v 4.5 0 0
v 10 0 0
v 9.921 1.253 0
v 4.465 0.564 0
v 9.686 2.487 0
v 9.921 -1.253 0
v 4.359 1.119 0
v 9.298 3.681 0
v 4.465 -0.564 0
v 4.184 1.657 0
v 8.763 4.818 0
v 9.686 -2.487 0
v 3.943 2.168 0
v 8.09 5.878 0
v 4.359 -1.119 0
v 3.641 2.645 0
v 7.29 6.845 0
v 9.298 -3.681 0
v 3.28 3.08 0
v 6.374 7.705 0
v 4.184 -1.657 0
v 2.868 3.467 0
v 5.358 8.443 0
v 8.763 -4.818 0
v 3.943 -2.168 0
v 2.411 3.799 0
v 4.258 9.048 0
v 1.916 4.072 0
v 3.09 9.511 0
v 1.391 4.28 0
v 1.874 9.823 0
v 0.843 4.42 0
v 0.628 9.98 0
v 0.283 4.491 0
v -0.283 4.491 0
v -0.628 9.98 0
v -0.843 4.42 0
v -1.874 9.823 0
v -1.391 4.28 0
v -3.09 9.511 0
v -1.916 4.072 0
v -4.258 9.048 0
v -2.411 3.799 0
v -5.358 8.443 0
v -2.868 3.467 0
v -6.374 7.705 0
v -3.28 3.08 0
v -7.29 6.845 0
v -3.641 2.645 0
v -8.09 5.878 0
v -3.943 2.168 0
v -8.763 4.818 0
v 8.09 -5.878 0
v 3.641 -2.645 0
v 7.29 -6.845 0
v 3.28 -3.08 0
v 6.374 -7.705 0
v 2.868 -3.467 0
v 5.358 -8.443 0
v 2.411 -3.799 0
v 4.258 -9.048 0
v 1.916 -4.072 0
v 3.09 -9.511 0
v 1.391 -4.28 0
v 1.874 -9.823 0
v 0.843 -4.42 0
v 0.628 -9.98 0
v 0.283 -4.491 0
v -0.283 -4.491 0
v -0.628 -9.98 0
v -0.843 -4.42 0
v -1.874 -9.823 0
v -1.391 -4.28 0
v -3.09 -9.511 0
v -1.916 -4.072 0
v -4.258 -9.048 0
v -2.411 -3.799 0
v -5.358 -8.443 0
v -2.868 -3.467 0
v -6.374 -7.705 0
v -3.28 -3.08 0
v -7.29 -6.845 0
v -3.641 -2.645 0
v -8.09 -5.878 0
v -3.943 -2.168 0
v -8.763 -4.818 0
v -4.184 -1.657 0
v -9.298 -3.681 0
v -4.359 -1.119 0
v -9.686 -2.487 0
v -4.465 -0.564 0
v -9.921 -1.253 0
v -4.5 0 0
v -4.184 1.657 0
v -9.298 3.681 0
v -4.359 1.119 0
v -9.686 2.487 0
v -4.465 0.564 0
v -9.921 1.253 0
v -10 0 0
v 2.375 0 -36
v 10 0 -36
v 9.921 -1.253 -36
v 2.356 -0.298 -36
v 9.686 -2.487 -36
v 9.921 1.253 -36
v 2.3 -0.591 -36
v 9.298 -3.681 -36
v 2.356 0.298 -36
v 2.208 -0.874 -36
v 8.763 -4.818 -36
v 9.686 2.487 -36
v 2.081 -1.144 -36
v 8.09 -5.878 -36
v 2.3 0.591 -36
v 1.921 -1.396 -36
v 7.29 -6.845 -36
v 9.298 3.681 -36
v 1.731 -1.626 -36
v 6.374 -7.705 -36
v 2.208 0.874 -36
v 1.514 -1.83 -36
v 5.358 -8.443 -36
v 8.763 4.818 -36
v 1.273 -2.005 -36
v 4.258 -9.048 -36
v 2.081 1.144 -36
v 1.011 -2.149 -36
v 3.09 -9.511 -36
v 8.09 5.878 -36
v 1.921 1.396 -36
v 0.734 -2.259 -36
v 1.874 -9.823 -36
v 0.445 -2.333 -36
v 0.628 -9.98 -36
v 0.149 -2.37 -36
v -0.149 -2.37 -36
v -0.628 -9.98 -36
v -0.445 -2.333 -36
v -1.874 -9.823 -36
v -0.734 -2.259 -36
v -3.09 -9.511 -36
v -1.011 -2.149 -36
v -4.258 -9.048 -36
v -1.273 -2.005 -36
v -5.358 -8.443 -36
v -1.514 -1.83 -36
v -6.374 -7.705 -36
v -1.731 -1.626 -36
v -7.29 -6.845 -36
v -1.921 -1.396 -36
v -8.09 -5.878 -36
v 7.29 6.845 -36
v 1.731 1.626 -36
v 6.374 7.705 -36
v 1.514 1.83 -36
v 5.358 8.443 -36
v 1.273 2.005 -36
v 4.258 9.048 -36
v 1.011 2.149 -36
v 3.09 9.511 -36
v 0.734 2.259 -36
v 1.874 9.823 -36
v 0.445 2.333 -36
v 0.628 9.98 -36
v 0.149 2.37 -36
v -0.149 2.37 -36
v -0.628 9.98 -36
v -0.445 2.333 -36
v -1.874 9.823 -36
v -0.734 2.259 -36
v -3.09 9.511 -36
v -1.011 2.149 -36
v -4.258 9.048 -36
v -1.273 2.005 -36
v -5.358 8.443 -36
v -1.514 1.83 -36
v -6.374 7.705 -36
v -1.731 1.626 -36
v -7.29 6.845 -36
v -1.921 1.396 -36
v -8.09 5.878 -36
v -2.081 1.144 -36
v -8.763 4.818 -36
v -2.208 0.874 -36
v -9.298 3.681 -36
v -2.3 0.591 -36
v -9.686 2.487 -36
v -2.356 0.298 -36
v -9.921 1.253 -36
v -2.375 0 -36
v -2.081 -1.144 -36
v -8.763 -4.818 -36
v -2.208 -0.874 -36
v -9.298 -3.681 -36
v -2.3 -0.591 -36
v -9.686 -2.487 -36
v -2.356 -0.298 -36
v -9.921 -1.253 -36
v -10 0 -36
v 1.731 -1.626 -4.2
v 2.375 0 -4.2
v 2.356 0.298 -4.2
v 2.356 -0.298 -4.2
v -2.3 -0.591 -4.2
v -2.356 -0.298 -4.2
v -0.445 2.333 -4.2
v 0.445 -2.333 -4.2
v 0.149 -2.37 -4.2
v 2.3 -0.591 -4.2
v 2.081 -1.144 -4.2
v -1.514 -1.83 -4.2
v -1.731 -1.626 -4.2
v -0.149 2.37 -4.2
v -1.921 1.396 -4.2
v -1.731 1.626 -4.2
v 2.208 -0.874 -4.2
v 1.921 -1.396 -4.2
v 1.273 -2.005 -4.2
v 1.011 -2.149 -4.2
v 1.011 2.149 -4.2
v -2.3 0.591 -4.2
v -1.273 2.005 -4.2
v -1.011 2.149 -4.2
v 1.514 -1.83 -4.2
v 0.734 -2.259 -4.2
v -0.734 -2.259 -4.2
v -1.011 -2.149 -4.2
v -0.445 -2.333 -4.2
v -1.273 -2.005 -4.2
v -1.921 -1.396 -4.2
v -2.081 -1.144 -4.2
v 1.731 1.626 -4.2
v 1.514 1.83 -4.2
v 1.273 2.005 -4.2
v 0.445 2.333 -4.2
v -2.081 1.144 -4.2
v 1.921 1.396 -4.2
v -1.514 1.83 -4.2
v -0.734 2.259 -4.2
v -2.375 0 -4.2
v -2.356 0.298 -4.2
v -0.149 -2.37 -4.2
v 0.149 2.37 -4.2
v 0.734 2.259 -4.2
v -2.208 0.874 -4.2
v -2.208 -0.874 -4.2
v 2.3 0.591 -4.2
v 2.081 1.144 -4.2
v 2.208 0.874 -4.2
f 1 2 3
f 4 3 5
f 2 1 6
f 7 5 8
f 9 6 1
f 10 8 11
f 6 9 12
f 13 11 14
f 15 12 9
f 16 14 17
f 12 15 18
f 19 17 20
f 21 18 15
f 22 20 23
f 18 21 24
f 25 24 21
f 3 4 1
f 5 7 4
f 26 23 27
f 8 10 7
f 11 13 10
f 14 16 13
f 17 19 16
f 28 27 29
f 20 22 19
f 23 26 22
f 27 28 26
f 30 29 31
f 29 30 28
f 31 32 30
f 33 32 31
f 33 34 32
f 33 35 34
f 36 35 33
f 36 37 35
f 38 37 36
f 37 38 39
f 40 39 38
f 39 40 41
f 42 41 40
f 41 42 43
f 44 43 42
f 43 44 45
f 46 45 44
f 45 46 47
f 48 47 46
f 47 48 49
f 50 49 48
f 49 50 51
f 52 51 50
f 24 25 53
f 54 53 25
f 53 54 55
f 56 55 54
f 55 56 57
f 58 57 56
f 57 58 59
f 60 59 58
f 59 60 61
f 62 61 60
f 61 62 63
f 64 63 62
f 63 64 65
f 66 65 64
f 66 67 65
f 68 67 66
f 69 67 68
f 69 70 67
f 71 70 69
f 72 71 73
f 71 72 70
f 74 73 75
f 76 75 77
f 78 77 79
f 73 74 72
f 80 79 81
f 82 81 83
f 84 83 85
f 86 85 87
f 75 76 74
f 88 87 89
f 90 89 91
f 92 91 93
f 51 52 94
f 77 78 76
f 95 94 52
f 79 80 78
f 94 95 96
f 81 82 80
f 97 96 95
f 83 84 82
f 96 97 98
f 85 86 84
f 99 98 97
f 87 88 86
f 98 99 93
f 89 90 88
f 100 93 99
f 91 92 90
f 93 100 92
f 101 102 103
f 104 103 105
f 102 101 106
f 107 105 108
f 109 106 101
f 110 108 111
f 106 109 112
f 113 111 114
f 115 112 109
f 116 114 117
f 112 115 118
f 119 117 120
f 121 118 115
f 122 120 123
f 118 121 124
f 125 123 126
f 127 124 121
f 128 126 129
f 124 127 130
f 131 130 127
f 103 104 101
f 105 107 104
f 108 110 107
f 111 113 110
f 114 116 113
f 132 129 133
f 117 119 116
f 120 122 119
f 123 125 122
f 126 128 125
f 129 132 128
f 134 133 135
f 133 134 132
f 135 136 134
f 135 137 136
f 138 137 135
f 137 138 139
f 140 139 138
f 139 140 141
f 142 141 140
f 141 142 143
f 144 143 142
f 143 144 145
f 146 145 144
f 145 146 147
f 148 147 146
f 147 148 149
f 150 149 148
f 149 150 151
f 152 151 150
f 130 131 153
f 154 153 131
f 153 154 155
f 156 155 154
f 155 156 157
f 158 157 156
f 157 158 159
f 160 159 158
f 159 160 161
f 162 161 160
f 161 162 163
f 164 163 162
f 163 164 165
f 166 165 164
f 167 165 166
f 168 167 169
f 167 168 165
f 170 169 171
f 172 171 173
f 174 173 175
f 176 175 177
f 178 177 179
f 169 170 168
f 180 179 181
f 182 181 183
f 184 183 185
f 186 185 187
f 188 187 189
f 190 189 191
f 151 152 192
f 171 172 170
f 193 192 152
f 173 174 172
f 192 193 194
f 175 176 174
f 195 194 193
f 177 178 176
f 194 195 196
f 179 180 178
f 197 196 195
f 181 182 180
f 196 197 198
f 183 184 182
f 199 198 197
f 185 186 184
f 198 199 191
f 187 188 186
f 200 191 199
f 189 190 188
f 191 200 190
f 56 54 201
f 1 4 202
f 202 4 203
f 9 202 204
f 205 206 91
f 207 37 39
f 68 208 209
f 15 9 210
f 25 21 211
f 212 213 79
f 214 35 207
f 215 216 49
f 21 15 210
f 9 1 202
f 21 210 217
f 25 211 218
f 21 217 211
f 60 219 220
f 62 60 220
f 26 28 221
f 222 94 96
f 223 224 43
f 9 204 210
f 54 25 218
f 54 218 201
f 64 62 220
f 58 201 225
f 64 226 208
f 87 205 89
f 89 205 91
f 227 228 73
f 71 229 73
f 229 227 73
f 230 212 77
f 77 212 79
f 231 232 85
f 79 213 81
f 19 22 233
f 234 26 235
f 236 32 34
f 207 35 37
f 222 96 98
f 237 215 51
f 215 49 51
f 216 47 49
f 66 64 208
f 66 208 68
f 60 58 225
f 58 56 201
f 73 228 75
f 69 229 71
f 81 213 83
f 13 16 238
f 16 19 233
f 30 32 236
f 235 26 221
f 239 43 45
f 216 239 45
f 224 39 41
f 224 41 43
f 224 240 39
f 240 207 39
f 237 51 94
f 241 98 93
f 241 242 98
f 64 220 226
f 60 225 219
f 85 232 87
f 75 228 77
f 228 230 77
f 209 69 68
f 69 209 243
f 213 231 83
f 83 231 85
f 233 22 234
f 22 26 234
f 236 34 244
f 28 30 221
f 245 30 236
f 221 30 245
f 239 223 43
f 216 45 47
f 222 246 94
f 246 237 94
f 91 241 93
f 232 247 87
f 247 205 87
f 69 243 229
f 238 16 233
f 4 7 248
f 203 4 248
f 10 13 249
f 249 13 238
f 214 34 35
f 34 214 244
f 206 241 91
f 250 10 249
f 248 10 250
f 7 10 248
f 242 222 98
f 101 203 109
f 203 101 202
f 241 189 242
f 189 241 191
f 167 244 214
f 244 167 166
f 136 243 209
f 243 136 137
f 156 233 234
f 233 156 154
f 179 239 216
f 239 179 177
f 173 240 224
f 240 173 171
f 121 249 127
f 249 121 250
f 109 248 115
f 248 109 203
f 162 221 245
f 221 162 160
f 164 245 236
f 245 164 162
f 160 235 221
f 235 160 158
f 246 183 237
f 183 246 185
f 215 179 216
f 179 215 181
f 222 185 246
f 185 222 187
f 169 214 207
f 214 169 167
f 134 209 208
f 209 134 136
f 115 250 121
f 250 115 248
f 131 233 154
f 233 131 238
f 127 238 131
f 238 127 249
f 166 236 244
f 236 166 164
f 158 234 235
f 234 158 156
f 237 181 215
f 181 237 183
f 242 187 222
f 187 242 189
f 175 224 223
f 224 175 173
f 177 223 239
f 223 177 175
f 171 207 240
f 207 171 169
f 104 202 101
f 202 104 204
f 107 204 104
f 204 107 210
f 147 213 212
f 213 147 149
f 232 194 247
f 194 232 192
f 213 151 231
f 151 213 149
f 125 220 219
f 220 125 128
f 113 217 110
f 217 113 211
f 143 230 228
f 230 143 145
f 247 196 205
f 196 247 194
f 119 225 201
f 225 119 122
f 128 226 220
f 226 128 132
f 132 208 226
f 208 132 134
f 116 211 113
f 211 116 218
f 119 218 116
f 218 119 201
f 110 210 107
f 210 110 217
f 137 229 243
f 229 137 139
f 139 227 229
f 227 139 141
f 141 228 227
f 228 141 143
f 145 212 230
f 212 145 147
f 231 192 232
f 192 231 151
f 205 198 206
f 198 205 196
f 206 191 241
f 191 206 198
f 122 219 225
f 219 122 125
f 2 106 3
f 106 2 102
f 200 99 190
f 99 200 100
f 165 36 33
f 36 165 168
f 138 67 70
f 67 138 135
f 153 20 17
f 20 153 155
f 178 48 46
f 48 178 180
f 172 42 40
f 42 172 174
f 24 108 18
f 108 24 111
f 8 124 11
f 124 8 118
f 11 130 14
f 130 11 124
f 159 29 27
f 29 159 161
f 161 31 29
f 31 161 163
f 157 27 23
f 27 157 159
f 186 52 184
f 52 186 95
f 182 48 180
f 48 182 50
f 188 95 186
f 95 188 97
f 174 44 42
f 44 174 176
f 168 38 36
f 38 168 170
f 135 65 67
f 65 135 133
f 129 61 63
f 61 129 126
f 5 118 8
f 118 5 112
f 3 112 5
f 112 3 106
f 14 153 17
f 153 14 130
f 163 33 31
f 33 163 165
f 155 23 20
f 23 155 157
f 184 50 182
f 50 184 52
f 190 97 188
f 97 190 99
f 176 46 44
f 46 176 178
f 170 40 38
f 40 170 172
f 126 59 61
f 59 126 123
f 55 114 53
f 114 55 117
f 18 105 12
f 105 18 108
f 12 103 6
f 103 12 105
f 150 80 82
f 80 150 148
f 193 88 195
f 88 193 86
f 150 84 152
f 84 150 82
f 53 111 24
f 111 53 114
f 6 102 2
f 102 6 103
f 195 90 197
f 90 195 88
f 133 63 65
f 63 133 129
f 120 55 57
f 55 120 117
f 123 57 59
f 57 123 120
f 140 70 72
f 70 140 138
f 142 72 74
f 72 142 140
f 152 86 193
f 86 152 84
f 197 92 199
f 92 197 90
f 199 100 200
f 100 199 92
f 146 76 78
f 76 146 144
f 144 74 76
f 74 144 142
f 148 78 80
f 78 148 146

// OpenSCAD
$fn = 50;


difference() {
	union() {
		translate(v = [0, 0, -36.0000000000]) {
			cylinder(h = 36, r = 10.0000000000);
		}
		cylinder(h = 0, r = 19.0000000000);
	}
	union() {
		translate(v = [0, 0, 0]) {
			rotate(a = [0, 0, 0]) {
				difference() {
					union() {
						#translate(v = [0, 0, -36.0000000000]) {
							cylinder(h = 36, r = 2.2500000000);
						}
						#translate(v = [0, 0, -4.2000000000]) {
							cylinder(h = 4.2000000000, r1 = 2.3750000000, r2 = 4.5000000000);
						}
						#translate(v = [0, 0, -36.0000000000]) {
							cylinder(h = 36, r = 2.3750000000);
						}
						#translate(v = [0, 0, -36.0000000000]) {
							cylinder(h = 36, r = 2.2500000000);
						}
					}
					union();
				}
			}
		}
	}
}
